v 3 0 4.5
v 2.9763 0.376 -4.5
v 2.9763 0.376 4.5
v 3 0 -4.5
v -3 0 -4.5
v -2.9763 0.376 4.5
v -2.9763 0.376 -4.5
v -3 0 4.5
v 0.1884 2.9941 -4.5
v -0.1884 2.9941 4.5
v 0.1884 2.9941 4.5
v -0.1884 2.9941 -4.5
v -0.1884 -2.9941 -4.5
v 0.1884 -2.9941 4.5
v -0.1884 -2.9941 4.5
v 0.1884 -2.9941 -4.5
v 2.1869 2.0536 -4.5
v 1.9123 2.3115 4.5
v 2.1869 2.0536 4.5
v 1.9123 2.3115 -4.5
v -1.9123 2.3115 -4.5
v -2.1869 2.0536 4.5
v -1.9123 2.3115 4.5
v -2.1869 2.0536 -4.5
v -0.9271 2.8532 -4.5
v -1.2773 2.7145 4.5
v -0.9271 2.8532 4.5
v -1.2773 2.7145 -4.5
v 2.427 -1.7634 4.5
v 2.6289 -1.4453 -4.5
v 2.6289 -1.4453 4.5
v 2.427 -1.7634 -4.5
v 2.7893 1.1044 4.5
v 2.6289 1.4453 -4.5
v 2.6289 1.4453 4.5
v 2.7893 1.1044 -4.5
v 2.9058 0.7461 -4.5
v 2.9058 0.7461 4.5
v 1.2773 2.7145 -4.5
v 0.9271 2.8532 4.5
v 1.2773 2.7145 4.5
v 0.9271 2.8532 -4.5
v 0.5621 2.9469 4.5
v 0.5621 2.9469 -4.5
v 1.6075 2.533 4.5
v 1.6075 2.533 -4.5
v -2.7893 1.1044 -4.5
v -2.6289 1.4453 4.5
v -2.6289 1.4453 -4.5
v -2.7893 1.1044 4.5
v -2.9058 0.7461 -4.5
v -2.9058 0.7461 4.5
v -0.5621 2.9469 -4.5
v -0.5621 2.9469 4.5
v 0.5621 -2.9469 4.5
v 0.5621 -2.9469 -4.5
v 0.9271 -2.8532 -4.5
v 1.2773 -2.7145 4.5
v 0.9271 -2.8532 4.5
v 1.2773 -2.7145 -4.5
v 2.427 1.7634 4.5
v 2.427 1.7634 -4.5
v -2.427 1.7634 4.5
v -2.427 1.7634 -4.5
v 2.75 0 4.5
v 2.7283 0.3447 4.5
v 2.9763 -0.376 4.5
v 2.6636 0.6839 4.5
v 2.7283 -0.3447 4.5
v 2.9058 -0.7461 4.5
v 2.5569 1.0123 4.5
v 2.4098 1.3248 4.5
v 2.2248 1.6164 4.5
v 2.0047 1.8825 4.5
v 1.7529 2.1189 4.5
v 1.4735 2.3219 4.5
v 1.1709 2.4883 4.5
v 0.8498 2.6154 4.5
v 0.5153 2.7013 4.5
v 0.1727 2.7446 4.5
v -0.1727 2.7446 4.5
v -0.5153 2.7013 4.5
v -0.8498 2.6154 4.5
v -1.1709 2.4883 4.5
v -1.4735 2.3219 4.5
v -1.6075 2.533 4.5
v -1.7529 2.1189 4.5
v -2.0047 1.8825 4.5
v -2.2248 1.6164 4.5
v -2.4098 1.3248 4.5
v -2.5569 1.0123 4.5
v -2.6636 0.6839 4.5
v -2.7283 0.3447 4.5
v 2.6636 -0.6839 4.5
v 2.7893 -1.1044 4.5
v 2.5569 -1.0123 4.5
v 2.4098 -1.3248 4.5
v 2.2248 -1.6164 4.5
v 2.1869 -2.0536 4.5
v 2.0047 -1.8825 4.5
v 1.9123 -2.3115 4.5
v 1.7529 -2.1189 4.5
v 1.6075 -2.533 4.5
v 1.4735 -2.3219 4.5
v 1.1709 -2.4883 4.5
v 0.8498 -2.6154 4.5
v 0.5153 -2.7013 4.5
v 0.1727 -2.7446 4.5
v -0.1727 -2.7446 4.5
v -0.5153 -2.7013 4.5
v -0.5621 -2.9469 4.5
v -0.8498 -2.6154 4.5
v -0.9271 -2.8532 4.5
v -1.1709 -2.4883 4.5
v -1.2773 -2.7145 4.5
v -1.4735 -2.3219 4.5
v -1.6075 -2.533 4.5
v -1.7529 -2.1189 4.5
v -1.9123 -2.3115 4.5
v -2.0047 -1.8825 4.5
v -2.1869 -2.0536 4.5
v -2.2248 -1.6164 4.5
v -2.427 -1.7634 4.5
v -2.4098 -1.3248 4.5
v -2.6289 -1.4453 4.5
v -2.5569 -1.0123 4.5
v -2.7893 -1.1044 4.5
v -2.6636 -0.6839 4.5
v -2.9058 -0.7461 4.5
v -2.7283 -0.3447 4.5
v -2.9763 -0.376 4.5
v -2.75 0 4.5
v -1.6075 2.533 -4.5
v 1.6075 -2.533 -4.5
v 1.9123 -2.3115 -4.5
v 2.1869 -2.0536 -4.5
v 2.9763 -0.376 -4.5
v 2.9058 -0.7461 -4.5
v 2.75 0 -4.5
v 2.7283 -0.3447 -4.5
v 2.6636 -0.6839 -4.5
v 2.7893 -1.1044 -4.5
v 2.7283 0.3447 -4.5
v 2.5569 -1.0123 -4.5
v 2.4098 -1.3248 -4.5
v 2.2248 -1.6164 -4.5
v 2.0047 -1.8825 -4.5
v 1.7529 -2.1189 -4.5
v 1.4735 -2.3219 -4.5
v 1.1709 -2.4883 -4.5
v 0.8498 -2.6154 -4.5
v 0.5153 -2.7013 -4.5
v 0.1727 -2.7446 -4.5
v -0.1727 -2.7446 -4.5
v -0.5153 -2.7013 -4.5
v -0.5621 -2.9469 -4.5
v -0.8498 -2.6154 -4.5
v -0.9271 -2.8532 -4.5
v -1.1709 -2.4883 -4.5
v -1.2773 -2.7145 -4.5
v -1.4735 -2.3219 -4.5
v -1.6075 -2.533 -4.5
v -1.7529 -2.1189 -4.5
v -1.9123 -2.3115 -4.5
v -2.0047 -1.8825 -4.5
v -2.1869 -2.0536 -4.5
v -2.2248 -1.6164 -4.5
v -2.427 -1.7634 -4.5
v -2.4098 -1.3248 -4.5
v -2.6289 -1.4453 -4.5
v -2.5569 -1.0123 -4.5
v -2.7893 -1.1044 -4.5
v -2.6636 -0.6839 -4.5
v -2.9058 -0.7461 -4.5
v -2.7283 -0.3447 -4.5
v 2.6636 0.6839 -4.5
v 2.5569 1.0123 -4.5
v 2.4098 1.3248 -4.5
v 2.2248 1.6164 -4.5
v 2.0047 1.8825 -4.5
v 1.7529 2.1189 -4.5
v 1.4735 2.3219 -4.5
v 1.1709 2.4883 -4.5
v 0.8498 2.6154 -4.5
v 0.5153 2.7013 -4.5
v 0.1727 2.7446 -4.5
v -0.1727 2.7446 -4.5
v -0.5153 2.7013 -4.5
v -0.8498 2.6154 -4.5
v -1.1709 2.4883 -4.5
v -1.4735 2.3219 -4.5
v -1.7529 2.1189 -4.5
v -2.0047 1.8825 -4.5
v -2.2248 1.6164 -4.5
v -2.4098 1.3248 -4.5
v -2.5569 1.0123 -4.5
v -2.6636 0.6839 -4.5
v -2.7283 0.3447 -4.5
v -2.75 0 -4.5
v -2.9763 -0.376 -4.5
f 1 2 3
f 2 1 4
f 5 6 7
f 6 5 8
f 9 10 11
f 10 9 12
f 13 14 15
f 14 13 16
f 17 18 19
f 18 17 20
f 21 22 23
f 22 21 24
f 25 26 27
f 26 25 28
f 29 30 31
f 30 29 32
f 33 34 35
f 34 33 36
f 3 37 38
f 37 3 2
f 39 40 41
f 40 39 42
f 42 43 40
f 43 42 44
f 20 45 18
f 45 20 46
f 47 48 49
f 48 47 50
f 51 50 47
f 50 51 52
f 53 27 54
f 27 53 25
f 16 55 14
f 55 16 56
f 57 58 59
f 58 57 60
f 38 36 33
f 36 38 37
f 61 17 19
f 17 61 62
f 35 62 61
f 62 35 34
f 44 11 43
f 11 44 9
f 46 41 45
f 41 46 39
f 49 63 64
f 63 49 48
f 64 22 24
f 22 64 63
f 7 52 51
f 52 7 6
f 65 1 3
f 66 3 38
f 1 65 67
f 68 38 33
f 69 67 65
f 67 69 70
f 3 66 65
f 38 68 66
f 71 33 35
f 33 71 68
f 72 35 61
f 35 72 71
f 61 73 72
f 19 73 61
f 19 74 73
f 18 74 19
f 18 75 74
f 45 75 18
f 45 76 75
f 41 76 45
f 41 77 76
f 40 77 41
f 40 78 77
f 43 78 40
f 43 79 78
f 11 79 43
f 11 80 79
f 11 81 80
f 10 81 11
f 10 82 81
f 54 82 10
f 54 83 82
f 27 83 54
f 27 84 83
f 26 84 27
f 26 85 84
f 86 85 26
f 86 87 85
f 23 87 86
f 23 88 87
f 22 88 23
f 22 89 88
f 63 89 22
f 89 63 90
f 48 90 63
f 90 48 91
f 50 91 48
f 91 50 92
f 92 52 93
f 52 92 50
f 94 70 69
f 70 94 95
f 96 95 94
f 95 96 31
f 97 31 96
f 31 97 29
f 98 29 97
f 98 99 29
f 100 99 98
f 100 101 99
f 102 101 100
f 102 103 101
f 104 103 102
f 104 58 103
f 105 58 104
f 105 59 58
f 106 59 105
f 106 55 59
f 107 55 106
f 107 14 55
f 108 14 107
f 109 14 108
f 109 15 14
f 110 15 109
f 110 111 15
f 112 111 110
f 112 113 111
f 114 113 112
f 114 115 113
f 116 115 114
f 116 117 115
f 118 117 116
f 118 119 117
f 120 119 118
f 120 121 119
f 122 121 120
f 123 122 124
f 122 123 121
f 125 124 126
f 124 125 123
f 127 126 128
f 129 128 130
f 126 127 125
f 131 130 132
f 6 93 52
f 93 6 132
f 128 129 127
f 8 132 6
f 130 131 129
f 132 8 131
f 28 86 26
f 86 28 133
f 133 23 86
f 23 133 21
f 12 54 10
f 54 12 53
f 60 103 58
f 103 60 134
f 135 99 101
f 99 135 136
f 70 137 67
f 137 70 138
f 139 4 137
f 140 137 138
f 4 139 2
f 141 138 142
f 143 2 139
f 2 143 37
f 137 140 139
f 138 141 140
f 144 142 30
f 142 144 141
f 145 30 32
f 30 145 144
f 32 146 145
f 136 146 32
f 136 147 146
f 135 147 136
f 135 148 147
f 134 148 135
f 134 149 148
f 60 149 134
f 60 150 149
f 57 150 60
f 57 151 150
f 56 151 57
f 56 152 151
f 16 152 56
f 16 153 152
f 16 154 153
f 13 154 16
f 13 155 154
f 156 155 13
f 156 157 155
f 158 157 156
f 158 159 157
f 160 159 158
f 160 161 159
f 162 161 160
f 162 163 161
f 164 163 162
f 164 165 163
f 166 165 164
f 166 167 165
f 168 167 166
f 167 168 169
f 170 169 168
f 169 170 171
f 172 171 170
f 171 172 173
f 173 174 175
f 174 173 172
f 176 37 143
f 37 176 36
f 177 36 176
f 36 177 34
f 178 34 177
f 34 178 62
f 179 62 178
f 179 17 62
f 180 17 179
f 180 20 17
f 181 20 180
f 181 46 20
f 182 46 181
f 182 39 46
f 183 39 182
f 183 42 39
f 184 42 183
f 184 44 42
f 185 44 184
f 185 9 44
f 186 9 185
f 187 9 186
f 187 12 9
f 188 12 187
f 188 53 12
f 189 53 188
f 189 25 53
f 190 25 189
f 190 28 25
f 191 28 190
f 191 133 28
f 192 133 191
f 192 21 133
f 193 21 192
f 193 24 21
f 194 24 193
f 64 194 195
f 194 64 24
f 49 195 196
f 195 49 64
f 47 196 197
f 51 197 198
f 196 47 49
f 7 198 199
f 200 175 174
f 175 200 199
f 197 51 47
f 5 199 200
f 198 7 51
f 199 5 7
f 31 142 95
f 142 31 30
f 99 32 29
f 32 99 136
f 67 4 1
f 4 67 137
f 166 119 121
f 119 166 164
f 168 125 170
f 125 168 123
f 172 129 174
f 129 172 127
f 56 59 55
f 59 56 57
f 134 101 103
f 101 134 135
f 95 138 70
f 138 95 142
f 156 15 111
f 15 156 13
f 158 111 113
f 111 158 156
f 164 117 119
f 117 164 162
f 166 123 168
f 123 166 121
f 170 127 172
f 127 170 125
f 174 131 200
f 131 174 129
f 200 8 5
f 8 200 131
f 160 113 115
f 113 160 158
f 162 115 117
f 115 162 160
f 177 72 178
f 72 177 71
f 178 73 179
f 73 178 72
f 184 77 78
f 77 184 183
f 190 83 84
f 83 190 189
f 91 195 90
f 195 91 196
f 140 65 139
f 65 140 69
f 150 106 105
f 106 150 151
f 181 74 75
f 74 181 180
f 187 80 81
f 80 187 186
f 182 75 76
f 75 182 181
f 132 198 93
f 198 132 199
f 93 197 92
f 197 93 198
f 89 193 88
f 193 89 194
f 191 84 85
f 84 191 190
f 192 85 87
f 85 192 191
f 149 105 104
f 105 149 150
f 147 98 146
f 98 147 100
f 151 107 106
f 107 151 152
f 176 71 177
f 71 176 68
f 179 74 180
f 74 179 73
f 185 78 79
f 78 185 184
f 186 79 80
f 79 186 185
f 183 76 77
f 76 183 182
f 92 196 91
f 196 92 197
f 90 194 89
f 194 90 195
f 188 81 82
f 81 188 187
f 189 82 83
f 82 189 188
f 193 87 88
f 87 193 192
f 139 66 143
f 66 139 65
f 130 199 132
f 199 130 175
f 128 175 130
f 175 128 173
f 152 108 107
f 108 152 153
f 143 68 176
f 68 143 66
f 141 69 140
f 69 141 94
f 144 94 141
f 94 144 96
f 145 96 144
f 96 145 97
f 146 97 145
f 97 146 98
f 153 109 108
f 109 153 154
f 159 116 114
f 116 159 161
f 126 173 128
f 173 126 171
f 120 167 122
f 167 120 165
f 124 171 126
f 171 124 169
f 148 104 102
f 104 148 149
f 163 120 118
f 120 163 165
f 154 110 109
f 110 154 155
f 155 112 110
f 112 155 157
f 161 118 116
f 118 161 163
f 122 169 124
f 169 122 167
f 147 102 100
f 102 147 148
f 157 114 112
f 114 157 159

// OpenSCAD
$fn = 50;


difference() {
	union() {
		translate(v = [0, 0, -4.5000000000]) {
			cylinder(h = 9, r = 3.0000000000);
		}
	}
	union() {
		translate(v = [0, 0, -100.0000000000]) {
			cylinder(h = 200, r = 2.7500000000);
		}
	}
}
